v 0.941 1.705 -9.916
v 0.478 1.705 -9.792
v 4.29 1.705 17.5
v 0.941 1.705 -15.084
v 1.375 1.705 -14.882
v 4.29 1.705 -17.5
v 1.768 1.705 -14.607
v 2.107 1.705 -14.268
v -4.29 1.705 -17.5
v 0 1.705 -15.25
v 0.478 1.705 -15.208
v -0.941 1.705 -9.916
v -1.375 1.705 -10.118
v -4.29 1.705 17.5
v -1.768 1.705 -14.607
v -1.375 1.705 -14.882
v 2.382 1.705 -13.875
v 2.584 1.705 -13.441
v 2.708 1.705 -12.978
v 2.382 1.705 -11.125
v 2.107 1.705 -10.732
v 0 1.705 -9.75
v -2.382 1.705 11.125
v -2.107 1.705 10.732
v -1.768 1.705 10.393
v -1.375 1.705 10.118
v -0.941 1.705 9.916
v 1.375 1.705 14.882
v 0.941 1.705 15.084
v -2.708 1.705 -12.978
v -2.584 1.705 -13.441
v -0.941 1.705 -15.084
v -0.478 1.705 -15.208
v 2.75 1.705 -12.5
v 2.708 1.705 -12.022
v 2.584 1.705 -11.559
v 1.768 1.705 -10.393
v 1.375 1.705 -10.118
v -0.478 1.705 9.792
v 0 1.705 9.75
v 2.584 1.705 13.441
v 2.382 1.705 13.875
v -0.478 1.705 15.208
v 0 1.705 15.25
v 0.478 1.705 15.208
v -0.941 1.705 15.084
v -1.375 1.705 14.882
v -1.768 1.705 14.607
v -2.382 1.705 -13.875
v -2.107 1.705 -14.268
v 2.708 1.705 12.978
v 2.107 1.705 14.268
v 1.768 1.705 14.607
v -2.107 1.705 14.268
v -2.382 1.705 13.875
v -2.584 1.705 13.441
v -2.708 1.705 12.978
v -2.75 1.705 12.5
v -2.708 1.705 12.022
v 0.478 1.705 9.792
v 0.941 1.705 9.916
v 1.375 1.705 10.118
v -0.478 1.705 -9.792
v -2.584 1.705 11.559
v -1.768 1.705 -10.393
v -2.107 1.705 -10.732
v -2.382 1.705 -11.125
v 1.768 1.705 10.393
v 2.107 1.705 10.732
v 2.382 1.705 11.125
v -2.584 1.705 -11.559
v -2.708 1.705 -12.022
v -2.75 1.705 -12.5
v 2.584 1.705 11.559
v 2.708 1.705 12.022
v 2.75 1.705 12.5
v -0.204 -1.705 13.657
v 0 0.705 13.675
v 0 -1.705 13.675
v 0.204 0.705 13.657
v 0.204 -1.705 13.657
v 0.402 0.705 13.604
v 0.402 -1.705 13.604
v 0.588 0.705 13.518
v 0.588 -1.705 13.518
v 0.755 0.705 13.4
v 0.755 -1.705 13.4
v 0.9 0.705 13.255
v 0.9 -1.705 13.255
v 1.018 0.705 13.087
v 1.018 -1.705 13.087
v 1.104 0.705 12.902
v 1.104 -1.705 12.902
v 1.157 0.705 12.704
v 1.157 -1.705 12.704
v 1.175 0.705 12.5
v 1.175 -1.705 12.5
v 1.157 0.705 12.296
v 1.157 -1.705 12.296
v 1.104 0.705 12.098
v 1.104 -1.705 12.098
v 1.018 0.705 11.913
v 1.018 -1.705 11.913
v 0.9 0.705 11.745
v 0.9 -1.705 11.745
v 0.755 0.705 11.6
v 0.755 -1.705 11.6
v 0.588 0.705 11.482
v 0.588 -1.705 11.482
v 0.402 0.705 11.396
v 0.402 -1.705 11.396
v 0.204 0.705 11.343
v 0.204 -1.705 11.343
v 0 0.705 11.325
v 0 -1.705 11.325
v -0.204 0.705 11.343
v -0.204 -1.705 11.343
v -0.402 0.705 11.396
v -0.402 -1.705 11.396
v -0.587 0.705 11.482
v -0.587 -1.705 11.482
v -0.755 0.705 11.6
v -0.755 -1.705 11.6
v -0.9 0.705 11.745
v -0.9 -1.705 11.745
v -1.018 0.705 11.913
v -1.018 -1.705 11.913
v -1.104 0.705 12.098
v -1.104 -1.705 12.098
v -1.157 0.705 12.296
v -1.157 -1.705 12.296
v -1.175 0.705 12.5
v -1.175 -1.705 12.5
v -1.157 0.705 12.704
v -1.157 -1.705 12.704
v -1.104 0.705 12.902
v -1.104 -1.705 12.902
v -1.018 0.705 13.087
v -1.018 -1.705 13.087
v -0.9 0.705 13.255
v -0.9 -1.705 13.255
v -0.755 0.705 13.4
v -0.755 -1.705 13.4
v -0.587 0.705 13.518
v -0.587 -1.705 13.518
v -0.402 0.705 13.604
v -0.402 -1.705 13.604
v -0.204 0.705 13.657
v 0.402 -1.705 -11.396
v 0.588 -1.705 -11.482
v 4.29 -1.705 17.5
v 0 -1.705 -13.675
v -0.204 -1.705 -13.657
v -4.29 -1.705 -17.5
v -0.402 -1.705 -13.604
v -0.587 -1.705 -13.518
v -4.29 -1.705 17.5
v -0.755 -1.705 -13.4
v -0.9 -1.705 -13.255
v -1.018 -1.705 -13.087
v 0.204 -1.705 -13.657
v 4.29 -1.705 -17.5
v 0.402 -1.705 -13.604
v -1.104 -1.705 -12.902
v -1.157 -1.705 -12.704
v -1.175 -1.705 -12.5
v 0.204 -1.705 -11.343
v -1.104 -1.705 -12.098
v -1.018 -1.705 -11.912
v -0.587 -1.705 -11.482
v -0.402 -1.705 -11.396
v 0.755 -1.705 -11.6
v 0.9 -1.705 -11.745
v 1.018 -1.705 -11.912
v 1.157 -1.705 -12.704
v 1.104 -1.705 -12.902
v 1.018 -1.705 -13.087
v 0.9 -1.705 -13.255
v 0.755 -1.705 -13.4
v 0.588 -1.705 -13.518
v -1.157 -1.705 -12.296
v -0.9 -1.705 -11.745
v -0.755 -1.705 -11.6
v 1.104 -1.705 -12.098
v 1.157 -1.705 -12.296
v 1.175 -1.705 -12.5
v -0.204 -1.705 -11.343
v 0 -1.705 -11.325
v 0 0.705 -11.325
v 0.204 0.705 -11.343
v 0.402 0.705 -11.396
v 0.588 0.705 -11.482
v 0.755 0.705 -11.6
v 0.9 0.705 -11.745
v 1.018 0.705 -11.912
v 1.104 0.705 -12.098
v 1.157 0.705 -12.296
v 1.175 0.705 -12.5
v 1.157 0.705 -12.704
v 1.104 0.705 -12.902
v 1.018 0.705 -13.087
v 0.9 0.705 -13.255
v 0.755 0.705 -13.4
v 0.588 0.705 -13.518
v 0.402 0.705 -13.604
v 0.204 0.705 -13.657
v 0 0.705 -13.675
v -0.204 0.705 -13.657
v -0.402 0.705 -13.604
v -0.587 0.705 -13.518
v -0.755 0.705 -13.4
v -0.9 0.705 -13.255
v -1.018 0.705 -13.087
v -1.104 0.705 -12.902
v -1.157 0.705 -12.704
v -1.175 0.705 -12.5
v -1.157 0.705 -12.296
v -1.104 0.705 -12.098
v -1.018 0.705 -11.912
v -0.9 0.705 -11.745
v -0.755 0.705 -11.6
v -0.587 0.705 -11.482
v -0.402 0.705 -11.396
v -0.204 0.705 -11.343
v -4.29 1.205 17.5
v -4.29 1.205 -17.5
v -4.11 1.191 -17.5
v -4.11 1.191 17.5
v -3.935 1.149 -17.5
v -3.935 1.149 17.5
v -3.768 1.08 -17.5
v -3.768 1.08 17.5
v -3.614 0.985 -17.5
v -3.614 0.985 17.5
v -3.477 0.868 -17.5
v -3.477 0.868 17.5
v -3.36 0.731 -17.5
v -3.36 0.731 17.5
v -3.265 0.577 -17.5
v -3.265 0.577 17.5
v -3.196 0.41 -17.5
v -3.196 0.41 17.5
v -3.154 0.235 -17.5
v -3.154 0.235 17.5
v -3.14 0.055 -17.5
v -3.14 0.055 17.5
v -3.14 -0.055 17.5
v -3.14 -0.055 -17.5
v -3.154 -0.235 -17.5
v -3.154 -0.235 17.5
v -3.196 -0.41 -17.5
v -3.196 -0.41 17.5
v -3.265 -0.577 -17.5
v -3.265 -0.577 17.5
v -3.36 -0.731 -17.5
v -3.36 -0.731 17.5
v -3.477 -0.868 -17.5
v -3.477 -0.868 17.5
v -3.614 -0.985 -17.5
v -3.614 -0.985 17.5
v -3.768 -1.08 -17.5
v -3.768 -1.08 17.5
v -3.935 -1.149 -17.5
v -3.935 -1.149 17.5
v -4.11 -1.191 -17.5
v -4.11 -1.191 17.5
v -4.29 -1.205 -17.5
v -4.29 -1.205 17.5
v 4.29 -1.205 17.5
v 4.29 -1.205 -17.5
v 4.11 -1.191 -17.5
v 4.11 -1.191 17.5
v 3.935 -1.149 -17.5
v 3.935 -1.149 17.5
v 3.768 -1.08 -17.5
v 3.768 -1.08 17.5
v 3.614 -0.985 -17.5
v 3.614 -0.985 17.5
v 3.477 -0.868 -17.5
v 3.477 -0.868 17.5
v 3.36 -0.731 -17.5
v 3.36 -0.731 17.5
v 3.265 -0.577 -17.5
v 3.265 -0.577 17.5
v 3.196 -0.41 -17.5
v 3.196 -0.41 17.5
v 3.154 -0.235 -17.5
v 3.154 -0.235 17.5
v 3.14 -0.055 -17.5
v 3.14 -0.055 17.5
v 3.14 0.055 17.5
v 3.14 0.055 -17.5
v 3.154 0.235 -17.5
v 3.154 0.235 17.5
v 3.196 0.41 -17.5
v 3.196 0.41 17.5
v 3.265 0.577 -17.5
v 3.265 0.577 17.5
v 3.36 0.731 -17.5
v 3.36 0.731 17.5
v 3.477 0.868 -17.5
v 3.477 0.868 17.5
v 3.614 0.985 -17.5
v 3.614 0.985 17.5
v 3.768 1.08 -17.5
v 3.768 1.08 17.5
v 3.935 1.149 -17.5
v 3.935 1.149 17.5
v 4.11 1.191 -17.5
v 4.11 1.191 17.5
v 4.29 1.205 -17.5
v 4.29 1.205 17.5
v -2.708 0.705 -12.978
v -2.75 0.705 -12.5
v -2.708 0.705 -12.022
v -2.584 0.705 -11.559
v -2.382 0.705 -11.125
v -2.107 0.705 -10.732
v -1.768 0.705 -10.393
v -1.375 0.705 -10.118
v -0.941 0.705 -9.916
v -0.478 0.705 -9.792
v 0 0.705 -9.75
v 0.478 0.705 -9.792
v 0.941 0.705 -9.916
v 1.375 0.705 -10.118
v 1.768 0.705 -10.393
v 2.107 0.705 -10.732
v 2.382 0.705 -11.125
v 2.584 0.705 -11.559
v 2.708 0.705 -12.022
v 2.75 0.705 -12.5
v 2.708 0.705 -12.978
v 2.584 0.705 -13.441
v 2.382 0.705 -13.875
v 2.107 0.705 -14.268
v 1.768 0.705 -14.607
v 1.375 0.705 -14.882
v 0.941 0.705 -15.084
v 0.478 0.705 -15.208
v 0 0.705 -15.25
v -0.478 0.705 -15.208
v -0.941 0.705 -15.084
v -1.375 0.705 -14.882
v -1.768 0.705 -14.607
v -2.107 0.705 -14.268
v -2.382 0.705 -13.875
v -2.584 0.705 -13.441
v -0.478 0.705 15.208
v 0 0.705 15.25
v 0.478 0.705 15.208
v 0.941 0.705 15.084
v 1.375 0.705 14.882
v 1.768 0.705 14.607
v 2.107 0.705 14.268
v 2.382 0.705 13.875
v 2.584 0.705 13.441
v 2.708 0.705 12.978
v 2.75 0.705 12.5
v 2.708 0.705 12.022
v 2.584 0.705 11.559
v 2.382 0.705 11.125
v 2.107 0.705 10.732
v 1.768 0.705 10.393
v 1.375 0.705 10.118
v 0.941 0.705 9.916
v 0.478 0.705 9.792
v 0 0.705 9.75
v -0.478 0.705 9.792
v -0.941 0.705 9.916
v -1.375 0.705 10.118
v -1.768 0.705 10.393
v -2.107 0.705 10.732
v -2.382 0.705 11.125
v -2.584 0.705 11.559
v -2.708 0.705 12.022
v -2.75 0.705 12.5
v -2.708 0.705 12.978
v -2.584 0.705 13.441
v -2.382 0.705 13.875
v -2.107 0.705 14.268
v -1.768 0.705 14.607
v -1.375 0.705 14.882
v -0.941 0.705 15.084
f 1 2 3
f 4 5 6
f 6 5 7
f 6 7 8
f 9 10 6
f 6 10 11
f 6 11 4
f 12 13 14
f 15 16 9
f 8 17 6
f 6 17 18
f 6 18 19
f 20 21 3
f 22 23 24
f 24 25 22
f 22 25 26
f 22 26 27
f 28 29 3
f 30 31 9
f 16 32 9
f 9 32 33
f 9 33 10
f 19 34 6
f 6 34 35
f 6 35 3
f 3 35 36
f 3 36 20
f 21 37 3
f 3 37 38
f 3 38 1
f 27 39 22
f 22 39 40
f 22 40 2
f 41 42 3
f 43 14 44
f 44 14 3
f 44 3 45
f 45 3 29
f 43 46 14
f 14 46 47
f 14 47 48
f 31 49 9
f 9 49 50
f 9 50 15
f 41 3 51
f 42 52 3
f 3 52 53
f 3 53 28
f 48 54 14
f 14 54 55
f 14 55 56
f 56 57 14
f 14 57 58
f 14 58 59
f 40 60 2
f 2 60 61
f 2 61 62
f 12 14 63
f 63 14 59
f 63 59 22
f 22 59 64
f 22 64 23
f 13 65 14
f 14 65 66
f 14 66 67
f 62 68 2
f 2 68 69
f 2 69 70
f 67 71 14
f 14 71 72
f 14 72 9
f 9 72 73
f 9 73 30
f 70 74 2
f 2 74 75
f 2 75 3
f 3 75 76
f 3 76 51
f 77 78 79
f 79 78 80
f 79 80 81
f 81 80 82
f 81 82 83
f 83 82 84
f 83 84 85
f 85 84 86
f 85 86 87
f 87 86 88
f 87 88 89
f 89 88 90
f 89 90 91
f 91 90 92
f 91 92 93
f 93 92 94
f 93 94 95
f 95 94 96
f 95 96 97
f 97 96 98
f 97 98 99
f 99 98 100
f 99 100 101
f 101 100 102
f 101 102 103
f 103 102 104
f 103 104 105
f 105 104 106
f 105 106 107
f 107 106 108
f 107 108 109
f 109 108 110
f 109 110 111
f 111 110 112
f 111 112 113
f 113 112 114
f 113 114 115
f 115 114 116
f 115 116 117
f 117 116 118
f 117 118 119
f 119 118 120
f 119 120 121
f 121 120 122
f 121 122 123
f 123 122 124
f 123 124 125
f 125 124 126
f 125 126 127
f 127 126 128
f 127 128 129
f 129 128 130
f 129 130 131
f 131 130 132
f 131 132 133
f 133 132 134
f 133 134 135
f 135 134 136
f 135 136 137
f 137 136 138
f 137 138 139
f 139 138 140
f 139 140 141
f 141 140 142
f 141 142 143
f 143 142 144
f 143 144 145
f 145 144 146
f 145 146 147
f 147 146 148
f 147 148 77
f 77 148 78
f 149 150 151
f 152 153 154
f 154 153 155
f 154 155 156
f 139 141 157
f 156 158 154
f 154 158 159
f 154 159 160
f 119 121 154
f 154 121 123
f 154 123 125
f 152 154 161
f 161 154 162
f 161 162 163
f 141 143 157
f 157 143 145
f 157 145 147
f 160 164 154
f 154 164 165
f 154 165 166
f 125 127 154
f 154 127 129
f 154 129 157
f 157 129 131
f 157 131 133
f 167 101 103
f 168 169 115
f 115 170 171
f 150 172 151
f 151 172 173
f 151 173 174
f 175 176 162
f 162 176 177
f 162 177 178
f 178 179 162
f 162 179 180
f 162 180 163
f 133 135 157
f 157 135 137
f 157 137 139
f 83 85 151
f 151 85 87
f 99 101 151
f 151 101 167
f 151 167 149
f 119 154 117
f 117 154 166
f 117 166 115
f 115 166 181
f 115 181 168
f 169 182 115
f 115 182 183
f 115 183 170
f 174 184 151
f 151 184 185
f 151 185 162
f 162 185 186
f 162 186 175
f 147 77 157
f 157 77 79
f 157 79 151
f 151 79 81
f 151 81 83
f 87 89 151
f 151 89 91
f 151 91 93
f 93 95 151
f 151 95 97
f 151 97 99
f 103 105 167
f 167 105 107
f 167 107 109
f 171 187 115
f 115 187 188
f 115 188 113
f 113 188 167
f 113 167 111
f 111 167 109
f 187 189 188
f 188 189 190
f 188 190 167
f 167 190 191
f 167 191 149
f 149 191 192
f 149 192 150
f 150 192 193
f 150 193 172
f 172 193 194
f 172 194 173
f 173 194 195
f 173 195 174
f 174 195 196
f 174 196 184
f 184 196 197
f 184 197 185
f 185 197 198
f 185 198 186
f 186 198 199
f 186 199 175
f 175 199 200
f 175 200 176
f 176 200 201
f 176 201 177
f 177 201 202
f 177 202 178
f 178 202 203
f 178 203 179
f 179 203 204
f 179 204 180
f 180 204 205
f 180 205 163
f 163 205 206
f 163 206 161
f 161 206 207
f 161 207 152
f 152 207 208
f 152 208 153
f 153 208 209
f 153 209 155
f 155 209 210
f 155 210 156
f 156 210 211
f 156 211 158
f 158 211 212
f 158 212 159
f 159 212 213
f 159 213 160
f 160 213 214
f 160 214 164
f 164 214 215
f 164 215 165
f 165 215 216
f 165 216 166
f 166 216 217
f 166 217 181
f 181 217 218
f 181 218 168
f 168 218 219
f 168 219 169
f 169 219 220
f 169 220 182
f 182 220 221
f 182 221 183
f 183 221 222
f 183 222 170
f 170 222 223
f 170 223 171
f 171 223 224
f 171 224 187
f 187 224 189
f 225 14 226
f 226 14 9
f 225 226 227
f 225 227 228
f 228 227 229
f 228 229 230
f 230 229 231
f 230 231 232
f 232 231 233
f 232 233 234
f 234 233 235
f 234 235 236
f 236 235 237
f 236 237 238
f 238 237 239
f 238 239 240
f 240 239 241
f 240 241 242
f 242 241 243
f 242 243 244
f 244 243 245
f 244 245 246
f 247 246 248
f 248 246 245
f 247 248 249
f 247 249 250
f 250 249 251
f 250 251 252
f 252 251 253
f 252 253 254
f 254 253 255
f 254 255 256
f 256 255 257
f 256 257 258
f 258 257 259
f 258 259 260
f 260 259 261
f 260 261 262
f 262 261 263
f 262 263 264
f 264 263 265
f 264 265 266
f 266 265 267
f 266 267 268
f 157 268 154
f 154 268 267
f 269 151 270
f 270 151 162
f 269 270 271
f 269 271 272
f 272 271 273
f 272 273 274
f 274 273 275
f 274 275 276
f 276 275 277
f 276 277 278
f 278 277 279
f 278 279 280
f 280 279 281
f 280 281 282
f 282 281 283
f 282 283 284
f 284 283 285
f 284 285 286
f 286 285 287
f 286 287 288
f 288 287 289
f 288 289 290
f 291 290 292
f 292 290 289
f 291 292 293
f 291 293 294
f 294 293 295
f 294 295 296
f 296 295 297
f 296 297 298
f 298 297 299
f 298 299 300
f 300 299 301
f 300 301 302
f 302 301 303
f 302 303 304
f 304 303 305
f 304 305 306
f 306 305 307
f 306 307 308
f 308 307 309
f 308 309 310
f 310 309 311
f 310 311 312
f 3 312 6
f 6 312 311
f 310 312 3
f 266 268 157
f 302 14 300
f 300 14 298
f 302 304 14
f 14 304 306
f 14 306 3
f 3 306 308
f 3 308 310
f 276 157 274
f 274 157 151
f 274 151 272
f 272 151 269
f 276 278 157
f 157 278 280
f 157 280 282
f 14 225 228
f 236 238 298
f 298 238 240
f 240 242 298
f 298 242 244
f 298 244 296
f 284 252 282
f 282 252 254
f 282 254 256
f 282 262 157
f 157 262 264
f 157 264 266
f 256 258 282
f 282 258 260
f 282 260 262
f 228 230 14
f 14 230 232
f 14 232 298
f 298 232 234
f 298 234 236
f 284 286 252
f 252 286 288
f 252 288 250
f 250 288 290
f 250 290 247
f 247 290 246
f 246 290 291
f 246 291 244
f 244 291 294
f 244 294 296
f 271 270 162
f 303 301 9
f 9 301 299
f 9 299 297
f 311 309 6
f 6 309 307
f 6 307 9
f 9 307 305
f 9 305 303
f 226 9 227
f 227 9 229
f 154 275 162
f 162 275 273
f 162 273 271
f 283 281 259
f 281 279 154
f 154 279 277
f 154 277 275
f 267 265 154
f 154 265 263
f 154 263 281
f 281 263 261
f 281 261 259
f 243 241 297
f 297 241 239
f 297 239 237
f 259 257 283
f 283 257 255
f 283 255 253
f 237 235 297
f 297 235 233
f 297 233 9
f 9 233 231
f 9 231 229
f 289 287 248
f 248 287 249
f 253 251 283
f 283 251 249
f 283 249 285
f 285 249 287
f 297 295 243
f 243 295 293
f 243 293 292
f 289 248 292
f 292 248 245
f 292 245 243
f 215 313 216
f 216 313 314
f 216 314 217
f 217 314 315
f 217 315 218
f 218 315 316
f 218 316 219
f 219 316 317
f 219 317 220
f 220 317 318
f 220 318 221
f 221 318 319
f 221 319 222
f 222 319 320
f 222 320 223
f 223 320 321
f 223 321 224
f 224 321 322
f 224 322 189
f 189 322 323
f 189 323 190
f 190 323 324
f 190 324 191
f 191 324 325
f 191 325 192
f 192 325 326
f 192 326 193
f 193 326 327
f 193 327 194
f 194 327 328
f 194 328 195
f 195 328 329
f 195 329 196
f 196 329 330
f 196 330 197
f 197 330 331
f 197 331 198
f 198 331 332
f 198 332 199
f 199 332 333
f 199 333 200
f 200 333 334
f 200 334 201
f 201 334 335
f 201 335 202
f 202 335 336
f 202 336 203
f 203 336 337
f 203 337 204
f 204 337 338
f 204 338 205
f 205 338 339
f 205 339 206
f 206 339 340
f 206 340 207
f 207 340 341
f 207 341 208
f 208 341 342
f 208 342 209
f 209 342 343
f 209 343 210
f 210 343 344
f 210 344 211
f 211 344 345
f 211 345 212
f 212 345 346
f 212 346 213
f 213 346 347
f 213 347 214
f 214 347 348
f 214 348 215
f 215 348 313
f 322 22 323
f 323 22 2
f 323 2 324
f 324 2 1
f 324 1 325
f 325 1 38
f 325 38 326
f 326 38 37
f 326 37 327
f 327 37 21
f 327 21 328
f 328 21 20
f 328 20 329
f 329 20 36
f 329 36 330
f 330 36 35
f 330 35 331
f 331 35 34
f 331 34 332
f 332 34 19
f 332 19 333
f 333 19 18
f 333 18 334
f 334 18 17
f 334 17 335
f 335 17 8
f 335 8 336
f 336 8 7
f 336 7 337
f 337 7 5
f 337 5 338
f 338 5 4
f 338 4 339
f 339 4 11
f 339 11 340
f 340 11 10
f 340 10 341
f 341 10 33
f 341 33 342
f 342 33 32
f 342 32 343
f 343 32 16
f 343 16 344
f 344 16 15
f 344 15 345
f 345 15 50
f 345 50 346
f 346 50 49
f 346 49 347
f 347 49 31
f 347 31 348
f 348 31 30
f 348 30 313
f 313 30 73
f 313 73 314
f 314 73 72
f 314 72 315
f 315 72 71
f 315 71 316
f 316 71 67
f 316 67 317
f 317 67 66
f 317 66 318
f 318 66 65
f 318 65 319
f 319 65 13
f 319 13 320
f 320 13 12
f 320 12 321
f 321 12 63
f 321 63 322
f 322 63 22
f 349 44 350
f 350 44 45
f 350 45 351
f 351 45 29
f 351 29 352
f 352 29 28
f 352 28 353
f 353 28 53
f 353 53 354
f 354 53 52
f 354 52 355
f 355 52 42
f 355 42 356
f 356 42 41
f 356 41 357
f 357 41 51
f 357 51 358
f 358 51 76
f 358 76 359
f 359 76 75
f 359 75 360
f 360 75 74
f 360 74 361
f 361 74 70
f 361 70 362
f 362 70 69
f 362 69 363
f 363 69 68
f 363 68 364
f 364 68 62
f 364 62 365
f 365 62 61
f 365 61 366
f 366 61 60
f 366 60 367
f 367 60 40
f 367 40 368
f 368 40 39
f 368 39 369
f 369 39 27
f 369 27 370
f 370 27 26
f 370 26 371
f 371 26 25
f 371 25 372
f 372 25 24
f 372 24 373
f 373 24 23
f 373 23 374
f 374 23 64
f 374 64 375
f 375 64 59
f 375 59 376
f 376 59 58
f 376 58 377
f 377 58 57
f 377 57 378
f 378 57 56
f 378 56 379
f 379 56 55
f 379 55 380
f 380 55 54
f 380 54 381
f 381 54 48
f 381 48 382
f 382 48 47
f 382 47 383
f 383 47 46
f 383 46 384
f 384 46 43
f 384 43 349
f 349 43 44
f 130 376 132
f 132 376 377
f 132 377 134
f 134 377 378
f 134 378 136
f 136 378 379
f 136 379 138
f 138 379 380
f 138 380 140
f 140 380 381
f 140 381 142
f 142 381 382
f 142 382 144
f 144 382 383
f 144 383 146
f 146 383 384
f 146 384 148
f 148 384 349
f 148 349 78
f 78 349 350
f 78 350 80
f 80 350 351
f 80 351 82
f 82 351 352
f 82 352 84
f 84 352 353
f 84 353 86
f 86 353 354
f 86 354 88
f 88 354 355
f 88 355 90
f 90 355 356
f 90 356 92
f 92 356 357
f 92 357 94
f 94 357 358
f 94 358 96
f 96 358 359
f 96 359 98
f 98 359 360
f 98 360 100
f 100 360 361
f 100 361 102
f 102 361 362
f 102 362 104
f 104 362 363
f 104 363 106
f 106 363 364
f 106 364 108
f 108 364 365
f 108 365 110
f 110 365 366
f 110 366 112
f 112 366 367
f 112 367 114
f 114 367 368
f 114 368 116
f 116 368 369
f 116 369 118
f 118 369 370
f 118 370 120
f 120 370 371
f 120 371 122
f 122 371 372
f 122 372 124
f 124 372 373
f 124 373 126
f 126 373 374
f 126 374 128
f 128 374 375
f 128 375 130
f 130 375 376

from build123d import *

# Parameters (mm, degrees)
BOSS_EXTRUDE1_DEPTH = 17.5
SKETCH2_R           = 1.175
CUT_EXTRUDE1_DEPTH  = 4.41
SKETCH3_R           = 2.75
CUT_EXTRUDE2_DEPTH  = 1


with BuildPart() as part:
    # Sketch1 → Boss-Extrude1 (new body, symmetric)
    with BuildSketch(Plane.XY):
        with BuildLine():
            Line((-3.14, 0.055), (-3.14, -0.055))
            ThreePointArc((-3.14, -0.055), (-3.476827202, -0.868172798), (-4.29, -1.205))
            Line((-4.29, -1.205), (-4.29, -1.705))
            Line((-4.29, -1.705), (4.29, -1.705))
            Line((4.29, -1.705), (4.29, -1.205))
            ThreePointArc((4.29, -1.205), (3.476827202, -0.868172798), (3.14, -0.055))
            Line((3.14, -0.055), (3.14, 0.055))
            ThreePointArc((3.14, 0.055), (3.476827202, 0.868172798), (4.29, 1.205))
            Line((4.29, 1.205), (4.29, 1.705))
            Line((4.29, 1.705), (-4.29, 1.705))
            Line((-4.29, 1.705), (-4.29, 1.205))
            ThreePointArc((-4.29, 1.205), (-3.476827202, 0.868172798), (-3.14, 0.055))
        make_face()
    extrude(amount=BOSS_EXTRUDE1_DEPTH, both=True)

    # Sketch2 → Cut-Extrude1 (cut, through all)
    with BuildSketch(Plane(origin=(0, 1.705, 0), x_dir=(1, 0, 0), z_dir=(0, 1, 0))):
        with Locations((0, 12.5)):
            Circle(SKETCH2_R)
    cut_extrude1 = extrude(amount=-CUT_EXTRUDE1_DEPTH, mode=Mode.SUBTRACT)

    # Sketch3 → Cut-Extrude2 (cut)
    with BuildSketch(Plane(origin=(0, 1.705, 0), x_dir=(1, 0, 0), z_dir=(0, 1, 0))):
        with Locations((0, 12.5)):
            Circle(SKETCH3_R)
    cut_extrude2 = extrude(amount=-CUT_EXTRUDE2_DEPTH, mode=Mode.SUBTRACT)

    # Mirror1: Cut-Extrude1, Cut-Extrude2 across plane
    add(cut_extrude1.mirror(Plane.XY), mode=Mode.SUBTRACT)
    add(cut_extrude2.mirror(Plane.XY), mode=Mode.SUBTRACT)


solid = part.part
